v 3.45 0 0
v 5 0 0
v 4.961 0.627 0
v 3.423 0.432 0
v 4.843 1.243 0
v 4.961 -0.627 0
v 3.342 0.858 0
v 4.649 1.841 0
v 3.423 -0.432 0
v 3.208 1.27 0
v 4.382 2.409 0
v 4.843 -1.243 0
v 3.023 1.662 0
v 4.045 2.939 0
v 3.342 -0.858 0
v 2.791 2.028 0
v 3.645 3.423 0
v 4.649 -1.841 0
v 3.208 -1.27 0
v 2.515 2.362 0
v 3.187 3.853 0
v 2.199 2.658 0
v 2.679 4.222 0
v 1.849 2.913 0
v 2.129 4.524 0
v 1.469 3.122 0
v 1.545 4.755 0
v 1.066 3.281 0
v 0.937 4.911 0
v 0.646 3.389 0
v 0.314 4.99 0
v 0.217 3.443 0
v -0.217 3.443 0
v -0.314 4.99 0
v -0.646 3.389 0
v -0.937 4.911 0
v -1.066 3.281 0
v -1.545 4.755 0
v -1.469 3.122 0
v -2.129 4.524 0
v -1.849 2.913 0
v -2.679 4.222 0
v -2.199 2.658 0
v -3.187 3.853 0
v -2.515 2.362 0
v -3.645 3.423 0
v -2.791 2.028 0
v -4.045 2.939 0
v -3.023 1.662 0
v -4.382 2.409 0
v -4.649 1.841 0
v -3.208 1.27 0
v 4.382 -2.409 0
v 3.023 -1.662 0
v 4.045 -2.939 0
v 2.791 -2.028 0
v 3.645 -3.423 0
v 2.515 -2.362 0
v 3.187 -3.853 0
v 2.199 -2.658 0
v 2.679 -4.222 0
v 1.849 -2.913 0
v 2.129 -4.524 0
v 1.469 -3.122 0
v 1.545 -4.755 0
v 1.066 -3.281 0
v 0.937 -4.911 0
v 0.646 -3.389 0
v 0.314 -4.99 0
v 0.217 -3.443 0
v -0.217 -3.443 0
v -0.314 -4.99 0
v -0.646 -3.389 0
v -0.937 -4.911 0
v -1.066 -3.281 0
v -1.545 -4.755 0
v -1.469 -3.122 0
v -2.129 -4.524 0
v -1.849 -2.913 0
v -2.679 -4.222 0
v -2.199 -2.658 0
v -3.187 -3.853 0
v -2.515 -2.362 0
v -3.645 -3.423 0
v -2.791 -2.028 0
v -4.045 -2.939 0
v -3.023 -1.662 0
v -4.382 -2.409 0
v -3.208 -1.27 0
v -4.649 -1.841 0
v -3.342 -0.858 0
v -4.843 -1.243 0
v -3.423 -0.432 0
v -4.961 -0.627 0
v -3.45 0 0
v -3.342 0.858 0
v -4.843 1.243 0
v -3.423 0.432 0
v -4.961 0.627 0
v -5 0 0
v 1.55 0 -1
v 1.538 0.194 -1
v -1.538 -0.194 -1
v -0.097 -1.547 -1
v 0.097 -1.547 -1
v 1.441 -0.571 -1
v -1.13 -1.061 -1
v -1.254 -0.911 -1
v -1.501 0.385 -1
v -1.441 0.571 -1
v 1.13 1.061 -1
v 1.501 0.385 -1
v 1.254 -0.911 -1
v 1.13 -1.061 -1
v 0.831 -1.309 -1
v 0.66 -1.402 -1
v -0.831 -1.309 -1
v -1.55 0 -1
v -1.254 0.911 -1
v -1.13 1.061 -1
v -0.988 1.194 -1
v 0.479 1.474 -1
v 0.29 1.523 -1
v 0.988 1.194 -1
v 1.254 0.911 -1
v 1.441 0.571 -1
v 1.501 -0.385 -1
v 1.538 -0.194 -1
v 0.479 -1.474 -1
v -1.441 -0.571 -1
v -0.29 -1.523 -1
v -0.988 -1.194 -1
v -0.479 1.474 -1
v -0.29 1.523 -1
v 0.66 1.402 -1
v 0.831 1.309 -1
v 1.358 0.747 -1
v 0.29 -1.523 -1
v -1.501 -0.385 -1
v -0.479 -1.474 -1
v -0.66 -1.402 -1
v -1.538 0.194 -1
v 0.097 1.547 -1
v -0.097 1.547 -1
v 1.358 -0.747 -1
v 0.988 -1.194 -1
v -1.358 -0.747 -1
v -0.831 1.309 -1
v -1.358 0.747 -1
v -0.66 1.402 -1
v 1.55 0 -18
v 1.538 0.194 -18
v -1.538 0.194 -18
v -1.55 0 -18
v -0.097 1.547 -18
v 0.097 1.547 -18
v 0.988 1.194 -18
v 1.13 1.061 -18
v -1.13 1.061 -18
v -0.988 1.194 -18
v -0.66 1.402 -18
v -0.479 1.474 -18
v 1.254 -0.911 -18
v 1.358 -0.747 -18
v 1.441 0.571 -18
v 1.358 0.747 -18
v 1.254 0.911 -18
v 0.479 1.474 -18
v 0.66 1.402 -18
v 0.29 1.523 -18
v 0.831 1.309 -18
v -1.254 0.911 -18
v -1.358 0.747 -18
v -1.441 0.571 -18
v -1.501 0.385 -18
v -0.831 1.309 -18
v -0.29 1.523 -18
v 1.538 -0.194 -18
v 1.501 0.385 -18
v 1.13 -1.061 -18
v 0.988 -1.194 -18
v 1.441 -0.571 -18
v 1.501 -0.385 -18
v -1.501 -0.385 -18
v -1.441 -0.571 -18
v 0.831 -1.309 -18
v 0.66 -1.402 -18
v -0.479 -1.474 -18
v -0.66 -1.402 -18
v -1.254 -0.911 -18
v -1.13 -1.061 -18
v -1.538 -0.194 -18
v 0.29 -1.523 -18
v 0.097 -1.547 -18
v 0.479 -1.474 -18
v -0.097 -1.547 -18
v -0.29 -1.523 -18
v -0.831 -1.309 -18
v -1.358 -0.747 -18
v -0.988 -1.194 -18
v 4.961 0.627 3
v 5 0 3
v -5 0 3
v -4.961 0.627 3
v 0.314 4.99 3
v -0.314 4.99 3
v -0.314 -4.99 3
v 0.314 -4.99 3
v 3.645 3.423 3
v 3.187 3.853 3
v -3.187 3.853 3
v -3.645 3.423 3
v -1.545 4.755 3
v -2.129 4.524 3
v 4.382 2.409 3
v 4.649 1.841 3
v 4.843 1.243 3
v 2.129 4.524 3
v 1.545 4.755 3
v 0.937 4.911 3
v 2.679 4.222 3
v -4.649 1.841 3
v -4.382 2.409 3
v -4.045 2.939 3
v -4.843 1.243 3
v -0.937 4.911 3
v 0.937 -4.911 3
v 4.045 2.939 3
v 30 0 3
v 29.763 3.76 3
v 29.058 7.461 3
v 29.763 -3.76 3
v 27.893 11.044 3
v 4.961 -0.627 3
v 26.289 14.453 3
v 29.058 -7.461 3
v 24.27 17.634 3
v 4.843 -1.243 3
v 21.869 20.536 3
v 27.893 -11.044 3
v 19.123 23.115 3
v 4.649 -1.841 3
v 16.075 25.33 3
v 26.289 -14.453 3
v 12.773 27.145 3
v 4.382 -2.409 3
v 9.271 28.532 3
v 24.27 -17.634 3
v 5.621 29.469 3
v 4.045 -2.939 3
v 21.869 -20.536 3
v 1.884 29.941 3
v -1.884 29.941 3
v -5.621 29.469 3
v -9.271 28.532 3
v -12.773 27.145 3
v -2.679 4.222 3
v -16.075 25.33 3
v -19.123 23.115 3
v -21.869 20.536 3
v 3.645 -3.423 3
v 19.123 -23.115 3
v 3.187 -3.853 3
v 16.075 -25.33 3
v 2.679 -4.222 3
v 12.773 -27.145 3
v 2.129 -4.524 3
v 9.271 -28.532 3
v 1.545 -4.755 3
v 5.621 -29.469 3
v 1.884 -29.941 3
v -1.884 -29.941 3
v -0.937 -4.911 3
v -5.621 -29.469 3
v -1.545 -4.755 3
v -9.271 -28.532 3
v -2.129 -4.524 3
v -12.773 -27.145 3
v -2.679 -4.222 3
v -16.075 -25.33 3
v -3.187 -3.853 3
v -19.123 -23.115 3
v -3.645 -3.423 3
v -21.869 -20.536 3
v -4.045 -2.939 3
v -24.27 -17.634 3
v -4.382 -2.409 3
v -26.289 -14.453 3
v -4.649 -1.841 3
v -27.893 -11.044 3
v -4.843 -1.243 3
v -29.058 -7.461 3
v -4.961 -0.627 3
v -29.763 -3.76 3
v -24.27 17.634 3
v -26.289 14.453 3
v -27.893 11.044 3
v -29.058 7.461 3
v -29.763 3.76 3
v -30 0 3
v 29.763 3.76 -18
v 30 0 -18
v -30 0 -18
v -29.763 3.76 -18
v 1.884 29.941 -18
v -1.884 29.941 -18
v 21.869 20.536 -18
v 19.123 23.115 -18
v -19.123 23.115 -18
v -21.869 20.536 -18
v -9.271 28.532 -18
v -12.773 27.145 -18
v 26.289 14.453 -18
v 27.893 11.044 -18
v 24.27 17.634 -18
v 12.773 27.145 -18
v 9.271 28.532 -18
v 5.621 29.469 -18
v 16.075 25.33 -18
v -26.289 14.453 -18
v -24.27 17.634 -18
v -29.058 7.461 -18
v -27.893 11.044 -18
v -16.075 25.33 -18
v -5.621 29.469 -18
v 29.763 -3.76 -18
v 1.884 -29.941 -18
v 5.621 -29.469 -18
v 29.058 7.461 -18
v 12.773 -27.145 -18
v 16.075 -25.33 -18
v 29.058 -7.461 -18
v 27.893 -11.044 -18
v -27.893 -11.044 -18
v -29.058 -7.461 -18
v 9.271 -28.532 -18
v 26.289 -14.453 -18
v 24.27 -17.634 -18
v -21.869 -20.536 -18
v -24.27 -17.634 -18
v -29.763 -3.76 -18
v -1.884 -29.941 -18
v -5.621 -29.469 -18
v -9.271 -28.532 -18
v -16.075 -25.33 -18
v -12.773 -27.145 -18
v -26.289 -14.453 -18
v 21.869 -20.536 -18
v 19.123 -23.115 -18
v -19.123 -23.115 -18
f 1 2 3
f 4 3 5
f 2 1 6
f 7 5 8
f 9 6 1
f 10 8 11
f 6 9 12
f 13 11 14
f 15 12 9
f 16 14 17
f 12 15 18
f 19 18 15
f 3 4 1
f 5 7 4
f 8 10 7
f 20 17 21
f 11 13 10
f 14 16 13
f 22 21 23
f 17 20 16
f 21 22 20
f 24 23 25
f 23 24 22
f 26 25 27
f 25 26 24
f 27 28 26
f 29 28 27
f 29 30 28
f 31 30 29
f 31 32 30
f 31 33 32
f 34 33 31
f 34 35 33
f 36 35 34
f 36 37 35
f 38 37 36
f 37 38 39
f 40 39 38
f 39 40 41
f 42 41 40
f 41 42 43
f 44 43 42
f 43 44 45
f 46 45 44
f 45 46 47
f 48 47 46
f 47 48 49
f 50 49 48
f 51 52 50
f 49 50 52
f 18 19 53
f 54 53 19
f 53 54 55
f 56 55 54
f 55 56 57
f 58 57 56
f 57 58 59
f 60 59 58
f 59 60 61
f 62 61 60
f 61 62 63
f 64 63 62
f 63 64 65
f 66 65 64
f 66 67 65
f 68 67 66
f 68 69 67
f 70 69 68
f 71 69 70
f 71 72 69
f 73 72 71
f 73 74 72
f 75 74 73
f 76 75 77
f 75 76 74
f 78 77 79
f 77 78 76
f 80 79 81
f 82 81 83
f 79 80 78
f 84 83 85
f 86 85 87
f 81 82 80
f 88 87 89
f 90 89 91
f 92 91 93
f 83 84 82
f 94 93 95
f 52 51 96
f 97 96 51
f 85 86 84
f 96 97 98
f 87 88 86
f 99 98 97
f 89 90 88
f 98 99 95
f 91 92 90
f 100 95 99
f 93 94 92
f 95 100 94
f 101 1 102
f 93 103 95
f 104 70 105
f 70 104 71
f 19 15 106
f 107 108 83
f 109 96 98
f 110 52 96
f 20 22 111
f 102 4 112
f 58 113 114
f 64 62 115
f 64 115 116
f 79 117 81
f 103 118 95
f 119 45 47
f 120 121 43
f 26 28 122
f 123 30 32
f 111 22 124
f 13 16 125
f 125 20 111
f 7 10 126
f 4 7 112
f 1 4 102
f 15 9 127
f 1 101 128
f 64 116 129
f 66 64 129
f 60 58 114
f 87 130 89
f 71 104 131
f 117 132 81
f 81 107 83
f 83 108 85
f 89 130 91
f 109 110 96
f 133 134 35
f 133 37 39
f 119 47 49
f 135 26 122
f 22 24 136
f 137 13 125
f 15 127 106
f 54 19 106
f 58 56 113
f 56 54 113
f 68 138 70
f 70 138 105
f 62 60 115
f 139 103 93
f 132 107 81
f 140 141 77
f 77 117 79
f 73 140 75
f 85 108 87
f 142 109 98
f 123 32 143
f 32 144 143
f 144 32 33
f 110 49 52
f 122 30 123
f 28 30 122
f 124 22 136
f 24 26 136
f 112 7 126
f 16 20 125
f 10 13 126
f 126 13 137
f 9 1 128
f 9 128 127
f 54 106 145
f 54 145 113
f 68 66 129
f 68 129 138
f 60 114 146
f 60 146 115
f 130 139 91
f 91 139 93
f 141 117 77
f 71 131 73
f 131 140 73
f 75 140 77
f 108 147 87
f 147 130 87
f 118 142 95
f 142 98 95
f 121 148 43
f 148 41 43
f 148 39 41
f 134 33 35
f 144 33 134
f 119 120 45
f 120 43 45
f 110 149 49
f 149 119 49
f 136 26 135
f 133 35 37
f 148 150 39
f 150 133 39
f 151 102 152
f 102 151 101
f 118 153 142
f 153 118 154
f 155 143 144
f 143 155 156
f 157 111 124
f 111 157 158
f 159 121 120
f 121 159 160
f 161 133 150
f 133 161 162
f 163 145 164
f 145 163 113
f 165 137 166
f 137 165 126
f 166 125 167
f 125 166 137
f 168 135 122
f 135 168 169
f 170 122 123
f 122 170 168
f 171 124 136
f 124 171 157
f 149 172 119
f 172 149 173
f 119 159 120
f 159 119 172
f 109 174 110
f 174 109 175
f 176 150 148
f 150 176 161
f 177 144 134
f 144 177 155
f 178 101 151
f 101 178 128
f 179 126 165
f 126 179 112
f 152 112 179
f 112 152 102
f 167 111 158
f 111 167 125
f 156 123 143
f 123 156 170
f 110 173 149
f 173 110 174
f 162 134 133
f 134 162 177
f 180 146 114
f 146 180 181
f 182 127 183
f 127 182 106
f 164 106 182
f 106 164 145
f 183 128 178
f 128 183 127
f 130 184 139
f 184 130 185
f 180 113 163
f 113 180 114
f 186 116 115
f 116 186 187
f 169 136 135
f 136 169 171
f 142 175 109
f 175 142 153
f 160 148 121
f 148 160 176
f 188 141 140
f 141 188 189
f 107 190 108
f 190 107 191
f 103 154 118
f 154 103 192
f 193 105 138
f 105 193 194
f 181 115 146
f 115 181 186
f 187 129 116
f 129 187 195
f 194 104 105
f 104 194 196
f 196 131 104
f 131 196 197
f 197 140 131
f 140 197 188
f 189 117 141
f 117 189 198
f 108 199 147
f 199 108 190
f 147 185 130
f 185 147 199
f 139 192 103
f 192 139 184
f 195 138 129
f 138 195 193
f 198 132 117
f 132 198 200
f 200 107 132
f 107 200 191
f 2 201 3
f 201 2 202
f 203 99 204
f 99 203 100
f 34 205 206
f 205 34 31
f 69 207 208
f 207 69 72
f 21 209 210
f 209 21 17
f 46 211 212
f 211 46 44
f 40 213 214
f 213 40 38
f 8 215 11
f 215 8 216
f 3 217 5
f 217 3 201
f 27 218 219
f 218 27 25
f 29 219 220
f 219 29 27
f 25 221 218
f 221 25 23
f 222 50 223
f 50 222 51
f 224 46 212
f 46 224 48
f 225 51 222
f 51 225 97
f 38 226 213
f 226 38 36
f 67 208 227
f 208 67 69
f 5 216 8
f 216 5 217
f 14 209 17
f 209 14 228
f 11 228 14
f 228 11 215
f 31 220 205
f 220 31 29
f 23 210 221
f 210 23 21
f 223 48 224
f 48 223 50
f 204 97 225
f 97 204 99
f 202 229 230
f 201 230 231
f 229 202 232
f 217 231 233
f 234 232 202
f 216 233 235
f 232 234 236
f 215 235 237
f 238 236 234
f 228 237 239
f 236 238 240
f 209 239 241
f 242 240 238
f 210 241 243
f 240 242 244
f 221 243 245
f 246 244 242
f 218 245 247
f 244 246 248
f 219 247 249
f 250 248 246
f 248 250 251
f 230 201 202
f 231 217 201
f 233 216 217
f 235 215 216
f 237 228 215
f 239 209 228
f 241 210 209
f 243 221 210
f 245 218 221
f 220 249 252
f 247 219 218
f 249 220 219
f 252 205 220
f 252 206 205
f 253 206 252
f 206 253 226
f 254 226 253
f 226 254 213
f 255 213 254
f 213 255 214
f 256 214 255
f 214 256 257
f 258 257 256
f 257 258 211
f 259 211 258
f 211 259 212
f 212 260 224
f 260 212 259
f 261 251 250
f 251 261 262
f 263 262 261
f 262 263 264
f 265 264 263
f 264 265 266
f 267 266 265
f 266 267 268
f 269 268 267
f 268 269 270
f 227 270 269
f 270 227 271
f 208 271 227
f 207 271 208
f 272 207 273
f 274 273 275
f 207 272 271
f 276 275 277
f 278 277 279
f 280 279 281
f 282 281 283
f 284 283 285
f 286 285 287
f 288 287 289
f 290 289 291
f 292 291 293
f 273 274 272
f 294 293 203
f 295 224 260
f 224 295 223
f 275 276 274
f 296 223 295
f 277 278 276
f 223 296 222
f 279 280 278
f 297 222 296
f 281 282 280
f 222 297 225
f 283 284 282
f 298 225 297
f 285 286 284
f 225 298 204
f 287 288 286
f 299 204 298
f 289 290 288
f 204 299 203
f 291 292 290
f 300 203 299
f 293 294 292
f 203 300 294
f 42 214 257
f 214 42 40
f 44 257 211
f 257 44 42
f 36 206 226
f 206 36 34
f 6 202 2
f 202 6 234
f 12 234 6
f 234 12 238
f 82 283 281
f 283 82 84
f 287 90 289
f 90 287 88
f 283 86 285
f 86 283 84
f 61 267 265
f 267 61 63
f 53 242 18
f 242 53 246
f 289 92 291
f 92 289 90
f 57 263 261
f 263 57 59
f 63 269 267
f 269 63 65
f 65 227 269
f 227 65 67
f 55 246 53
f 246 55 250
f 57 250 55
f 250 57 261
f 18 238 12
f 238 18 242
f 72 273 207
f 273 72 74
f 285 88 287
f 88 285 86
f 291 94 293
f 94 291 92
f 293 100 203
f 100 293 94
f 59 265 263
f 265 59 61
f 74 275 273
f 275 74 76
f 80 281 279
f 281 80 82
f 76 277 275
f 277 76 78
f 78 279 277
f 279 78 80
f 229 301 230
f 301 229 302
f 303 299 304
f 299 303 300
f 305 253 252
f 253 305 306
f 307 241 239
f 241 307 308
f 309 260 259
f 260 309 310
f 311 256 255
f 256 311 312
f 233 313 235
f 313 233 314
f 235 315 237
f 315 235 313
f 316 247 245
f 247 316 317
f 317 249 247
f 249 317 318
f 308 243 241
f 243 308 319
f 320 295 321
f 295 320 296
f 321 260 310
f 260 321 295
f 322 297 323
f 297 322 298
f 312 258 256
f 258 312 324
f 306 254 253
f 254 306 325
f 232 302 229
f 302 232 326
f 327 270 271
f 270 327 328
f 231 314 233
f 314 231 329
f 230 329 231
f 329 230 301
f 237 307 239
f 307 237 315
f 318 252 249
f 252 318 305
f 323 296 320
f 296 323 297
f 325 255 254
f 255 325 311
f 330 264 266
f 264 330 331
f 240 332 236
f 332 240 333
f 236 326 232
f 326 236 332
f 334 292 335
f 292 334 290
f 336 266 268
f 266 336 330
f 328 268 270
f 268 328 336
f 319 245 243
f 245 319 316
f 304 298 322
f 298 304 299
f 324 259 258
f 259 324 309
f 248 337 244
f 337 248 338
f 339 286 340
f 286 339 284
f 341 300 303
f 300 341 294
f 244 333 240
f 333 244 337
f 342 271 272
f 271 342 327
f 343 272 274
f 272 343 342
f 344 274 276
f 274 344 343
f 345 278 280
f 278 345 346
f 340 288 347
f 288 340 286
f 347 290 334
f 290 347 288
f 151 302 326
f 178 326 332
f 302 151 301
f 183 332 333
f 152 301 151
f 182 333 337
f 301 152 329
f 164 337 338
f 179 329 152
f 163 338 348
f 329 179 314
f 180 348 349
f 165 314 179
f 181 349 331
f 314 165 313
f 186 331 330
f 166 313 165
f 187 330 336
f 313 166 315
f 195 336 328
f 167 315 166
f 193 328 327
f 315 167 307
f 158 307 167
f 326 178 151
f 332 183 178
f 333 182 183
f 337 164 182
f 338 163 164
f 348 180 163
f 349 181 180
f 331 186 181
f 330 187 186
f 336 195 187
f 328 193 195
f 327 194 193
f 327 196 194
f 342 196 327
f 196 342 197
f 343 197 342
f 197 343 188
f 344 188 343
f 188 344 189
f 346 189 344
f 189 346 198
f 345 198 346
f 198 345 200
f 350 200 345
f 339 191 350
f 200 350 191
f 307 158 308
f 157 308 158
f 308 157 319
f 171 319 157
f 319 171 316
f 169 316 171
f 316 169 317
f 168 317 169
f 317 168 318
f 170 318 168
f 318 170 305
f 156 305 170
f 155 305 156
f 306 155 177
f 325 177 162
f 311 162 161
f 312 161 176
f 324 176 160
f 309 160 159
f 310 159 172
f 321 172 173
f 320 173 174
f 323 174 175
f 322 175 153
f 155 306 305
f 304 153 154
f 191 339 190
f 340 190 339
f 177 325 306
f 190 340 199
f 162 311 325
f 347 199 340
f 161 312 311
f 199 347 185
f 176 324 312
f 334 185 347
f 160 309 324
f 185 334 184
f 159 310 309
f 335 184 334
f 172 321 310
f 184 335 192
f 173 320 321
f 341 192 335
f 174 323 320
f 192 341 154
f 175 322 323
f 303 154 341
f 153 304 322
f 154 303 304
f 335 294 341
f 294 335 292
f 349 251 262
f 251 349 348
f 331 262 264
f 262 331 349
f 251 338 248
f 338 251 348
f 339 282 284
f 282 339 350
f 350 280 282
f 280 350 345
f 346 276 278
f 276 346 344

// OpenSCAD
$fn = 50;


difference() {
	union() {
		translate(v = [0, 0, -18.0000000000]) {
			cylinder(h = 21, r = 30.0000000000);
		}
	}
	union() {
		translate(v = [0, 0, 0]) {
			rotate(a = [0, 0, 0]) {
				difference() {
					union() {
						translate(v = [0, 0, -21.0000000000]) {
							cylinder(h = 21, r = 1.2500000000);
						}
						translate(v = [0, 0, -1.0000000000]) {
							cylinder(h = 1.0000000000, r1 = 1.5500000000, r2 = 3.4500000000);
						}
						translate(v = [0, 0, -21.0000000000]) {
							cylinder(h = 21, r = 1.5500000000);
						}
						translate(v = [0, 0, -21.0000000000]) {
							cylinder(h = 21, r = 1.2500000000);
						}
					}
					union();
				}
			}
		}
		#cylinder(h = 3, r = 5.0000000000);
	}
}
